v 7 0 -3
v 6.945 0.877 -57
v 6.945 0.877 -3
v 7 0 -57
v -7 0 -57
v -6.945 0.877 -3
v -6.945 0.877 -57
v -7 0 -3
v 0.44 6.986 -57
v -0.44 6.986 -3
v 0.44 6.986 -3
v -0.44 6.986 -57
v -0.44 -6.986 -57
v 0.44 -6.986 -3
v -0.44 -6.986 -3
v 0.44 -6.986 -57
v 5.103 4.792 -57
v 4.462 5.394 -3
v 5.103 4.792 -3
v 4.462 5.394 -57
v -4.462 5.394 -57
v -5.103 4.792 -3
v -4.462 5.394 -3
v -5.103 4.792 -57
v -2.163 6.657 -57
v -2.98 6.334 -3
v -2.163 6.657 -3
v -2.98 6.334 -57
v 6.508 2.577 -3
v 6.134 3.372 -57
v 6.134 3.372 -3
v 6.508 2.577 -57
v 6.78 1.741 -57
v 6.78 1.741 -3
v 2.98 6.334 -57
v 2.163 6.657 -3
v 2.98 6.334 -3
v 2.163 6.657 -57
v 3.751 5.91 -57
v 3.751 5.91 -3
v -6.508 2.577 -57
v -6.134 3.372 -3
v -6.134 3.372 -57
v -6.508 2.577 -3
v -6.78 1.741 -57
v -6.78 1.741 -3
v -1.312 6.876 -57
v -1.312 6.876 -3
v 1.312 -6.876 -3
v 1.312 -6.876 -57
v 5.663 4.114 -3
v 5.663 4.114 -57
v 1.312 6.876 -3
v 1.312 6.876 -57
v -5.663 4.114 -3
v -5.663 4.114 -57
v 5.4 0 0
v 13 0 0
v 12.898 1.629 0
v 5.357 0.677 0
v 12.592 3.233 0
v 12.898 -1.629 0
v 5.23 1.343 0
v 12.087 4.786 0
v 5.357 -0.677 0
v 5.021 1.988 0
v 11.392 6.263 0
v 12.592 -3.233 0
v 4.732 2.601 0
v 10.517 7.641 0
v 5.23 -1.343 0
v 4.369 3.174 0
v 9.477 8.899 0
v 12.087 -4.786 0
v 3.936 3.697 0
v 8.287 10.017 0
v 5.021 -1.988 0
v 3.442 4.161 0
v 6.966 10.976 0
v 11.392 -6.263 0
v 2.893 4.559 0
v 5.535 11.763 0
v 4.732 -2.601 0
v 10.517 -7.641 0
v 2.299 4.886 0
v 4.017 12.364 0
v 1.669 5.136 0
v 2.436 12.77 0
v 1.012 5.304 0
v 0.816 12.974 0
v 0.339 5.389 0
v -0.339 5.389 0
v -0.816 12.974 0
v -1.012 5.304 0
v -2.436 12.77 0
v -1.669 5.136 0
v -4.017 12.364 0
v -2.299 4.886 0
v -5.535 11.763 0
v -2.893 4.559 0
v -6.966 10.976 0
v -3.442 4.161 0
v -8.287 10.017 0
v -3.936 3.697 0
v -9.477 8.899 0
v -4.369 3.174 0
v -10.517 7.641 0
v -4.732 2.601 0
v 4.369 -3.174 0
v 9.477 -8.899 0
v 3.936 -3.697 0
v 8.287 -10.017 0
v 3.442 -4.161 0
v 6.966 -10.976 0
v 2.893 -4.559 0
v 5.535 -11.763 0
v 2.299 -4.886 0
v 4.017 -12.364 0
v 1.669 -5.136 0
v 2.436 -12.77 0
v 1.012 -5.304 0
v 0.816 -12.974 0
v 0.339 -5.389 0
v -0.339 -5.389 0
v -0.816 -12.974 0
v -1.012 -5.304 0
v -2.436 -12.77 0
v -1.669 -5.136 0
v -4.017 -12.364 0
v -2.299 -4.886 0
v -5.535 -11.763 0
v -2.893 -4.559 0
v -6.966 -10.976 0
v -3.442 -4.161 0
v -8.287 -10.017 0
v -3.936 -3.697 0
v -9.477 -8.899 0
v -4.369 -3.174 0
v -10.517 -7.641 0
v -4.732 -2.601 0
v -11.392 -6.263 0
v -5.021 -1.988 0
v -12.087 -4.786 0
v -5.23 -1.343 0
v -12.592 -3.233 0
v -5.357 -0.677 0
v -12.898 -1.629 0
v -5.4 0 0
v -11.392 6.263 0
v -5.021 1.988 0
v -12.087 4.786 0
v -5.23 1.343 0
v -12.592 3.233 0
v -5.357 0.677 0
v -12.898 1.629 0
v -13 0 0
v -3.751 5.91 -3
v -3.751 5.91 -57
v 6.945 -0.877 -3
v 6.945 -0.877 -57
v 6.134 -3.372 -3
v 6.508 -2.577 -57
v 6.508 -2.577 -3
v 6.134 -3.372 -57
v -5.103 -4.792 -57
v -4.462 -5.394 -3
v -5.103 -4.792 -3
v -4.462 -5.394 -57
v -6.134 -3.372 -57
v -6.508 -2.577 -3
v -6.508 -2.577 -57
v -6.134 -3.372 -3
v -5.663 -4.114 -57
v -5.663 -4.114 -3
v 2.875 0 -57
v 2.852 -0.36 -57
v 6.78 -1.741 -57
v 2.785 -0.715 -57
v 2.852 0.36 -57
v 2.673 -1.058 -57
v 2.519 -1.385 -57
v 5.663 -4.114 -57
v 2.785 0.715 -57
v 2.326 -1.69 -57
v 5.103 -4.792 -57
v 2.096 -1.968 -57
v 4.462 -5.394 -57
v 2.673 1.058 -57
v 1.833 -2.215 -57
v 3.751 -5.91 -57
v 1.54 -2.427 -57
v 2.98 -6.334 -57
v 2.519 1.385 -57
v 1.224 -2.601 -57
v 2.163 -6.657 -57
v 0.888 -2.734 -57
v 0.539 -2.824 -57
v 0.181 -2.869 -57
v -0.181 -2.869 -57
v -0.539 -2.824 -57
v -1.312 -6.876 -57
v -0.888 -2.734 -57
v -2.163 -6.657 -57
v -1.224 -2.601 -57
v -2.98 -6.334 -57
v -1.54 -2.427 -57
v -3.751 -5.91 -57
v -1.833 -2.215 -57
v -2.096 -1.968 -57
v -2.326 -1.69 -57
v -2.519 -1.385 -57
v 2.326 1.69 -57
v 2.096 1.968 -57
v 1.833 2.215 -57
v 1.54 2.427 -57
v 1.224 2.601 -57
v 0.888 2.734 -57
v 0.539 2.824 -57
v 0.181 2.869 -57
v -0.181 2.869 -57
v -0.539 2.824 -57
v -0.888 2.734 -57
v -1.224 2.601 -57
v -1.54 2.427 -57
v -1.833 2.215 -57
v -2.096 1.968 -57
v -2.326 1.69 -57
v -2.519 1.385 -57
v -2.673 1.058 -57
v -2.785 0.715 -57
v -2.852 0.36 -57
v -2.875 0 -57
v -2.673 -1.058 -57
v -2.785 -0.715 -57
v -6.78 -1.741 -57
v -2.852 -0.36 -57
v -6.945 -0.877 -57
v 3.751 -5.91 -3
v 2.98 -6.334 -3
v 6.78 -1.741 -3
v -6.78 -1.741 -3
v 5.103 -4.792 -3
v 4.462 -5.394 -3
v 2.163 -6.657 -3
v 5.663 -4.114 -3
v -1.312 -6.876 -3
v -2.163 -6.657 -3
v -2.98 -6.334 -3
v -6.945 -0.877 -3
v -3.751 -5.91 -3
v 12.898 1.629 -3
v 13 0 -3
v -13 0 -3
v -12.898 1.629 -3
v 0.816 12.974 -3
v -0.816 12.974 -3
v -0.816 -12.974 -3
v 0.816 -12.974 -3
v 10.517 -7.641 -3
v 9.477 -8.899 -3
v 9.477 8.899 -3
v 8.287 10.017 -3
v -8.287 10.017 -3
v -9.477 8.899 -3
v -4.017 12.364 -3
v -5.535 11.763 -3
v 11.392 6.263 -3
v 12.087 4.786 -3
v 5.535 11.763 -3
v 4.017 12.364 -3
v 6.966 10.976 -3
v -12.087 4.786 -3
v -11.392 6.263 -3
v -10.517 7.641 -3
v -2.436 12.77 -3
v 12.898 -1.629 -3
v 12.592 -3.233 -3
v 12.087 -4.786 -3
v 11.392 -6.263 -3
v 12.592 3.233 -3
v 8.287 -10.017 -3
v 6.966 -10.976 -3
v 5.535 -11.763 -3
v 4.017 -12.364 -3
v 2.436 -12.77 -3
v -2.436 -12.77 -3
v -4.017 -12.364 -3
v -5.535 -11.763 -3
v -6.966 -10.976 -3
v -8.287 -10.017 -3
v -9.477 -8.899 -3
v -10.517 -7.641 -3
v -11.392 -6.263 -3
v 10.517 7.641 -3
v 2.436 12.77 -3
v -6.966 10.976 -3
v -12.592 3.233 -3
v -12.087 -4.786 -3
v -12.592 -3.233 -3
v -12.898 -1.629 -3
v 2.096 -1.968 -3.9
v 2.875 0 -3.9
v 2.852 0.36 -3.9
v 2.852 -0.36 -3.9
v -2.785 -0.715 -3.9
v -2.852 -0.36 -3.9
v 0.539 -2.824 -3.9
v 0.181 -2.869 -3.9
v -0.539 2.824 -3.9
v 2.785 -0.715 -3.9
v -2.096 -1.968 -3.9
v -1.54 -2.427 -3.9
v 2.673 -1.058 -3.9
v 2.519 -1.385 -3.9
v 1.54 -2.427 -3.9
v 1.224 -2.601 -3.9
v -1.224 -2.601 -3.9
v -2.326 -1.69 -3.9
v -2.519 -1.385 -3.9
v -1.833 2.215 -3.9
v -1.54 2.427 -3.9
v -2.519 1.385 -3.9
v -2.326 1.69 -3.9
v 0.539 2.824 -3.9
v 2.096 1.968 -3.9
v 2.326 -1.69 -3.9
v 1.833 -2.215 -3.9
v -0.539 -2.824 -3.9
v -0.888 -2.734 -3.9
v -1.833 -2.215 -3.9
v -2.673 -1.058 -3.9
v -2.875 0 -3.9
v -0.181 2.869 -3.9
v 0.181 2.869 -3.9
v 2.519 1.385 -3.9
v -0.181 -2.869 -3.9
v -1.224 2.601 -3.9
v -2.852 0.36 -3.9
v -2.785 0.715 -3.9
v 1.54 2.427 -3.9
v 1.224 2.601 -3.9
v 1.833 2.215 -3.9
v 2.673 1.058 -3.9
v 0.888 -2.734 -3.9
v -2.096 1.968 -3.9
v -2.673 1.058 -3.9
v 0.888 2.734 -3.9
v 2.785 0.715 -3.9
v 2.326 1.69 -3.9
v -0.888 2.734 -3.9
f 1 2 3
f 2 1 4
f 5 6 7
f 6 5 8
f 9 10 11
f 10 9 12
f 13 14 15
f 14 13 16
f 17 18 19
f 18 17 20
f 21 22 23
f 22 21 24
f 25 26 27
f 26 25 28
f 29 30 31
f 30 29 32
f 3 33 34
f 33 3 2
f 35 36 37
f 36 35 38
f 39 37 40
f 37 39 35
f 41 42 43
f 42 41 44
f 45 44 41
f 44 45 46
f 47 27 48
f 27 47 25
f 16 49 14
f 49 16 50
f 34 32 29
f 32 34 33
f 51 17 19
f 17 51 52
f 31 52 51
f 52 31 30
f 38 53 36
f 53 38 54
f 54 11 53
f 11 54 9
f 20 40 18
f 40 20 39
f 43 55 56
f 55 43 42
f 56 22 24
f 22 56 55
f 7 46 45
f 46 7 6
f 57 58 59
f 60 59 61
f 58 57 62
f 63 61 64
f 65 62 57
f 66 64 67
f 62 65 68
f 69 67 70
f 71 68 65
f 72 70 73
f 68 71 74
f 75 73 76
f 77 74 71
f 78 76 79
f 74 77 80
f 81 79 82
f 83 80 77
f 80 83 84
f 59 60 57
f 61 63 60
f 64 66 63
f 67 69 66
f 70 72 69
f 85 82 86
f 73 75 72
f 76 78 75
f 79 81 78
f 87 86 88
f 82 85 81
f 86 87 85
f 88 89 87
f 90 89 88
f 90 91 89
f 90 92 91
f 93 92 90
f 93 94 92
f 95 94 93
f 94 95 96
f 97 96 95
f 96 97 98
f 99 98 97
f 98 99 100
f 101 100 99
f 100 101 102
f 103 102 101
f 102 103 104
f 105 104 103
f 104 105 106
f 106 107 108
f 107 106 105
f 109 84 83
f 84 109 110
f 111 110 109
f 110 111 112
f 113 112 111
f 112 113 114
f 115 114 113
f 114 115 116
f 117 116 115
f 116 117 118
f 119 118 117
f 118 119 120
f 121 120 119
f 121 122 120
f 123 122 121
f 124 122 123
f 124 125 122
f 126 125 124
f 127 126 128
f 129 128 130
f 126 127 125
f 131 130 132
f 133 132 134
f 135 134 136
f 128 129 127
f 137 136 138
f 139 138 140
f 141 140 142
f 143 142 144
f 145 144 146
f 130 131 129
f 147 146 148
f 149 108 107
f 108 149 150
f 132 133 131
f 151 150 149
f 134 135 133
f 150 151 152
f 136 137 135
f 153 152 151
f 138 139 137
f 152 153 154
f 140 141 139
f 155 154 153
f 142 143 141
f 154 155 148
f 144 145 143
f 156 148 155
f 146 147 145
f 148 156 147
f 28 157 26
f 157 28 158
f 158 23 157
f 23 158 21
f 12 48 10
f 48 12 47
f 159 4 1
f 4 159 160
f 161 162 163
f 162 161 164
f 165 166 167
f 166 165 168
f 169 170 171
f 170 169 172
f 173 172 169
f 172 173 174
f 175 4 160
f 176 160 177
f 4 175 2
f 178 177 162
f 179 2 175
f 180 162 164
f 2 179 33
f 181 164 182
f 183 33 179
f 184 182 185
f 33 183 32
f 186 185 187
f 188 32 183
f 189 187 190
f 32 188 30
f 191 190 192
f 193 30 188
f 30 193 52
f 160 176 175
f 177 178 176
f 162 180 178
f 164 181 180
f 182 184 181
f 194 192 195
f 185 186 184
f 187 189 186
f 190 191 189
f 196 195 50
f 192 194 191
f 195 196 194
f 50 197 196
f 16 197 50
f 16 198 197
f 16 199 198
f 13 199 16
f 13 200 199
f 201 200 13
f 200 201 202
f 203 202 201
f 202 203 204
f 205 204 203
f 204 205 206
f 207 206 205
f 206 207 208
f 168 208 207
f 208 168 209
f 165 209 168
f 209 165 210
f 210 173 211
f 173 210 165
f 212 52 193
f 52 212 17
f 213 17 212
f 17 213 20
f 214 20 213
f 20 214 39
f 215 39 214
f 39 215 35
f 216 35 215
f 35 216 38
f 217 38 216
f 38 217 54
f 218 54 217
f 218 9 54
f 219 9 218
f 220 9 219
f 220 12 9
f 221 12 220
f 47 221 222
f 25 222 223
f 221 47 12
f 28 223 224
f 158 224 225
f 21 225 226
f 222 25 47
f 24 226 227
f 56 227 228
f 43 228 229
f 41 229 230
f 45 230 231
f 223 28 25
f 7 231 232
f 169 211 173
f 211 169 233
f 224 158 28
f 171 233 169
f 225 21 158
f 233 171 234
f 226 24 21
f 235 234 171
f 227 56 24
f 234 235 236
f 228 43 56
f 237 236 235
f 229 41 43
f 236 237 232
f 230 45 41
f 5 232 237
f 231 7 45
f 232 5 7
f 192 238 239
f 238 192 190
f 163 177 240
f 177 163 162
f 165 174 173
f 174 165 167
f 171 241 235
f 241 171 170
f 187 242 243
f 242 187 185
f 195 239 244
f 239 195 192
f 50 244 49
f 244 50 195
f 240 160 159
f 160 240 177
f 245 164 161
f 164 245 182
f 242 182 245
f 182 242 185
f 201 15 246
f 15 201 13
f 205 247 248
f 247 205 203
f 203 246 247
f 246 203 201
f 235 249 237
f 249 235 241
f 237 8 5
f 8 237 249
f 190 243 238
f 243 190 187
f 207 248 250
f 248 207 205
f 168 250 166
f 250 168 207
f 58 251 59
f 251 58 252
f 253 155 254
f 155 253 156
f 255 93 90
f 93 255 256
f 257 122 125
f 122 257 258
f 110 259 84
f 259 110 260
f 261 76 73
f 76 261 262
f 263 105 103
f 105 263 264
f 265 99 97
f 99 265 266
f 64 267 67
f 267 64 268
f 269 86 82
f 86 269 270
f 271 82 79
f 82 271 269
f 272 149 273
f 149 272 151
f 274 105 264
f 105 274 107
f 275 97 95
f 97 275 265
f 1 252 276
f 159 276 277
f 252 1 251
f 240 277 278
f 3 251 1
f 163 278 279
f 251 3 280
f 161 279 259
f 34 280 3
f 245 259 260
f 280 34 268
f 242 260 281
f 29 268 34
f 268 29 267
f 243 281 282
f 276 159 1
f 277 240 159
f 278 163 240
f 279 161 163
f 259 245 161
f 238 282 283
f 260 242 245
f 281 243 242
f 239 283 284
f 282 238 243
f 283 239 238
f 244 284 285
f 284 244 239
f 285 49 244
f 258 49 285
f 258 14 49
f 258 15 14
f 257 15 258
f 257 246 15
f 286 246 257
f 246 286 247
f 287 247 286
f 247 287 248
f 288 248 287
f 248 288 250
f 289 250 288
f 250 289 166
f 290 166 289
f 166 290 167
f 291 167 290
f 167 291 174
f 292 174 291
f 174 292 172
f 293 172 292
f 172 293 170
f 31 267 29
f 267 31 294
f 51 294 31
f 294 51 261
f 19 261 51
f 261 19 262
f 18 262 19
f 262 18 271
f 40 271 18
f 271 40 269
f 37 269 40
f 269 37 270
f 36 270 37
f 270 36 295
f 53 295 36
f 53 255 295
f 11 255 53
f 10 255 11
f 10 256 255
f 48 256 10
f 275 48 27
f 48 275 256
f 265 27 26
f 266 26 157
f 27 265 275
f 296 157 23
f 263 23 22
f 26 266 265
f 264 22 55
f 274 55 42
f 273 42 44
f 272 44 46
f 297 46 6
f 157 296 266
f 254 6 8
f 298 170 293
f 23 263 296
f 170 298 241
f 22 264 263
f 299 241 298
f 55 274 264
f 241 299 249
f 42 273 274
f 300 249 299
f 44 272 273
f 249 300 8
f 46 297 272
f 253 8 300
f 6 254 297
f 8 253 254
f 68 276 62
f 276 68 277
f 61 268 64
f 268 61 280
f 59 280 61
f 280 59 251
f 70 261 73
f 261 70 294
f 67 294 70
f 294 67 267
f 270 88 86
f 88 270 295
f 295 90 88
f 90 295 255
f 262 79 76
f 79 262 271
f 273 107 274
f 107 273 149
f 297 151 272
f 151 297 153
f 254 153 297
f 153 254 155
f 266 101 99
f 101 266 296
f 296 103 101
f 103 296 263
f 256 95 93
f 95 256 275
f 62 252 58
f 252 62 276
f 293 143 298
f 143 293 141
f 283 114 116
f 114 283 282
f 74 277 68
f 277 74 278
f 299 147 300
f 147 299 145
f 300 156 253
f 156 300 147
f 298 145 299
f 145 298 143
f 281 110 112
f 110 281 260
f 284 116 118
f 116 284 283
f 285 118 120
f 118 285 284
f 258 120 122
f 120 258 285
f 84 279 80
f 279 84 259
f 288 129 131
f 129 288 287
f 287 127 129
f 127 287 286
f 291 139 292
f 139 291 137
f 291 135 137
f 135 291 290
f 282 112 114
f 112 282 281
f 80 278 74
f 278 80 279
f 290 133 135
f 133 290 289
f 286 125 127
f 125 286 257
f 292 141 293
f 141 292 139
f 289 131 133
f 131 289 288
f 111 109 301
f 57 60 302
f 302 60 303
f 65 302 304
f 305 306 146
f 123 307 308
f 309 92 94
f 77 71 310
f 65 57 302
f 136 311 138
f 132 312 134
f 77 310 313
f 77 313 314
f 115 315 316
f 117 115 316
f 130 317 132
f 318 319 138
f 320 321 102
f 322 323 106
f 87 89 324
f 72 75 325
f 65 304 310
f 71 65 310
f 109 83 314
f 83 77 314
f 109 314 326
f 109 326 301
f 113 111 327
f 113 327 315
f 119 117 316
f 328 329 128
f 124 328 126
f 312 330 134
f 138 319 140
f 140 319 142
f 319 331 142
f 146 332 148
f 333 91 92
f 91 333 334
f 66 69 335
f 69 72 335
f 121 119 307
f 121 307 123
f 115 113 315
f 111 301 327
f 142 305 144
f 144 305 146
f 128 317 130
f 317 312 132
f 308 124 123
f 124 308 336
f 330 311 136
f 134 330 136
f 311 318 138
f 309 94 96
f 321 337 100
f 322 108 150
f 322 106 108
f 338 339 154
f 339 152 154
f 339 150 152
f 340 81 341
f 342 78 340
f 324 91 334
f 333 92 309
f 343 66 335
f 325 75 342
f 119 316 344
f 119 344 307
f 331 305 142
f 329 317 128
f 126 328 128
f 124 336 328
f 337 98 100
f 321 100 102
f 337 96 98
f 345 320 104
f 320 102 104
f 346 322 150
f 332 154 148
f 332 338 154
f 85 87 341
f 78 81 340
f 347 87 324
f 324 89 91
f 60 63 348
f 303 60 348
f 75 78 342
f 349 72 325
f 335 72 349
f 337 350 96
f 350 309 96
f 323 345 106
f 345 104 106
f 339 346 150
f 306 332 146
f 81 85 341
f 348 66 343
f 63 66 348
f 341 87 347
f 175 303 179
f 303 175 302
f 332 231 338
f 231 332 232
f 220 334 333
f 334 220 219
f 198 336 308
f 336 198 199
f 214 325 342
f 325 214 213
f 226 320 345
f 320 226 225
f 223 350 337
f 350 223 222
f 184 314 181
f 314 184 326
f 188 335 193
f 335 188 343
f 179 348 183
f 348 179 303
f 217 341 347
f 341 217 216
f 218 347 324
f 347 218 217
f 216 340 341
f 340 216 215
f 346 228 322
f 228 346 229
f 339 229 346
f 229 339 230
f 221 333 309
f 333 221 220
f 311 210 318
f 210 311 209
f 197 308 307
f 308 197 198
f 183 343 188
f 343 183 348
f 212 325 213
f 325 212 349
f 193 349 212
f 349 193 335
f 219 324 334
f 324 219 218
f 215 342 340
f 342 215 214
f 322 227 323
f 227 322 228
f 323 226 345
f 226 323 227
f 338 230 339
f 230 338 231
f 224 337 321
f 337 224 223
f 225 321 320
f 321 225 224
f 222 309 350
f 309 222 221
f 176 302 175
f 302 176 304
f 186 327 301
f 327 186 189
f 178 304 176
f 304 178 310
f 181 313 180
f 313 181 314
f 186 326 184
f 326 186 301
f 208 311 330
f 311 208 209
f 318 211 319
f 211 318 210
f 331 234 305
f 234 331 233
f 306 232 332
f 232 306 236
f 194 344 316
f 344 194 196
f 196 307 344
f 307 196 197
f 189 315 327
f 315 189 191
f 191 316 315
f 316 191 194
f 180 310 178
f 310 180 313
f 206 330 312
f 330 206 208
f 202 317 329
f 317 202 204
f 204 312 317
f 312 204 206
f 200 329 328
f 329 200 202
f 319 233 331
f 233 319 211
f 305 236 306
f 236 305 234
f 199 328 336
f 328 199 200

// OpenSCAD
$fn = 50;


difference() {
	union() {
		translate(v = [0, 0, -57.0000000000]) {
			cylinder(h = 57, r = 7.0000000000);
		}
		translate(v = [0, 0, -3.0000000000]) {
			cylinder(h = 3, r = 13.0000000000);
		}
	}
	union() {
		translate(v = [0, 0, 0]) {
			rotate(a = [0, 0, 0]) {
				difference() {
					union() {
						#translate(v = [0, 0, -57.0000000000]) {
							cylinder(h = 57, r = 2.6000000000);
						}
						#translate(v = [0, 0, -3.9000000000]) {
							cylinder(h = 3.9000000000, r1 = 2.8750000000, r2 = 5.4000000000);
						}
						#translate(v = [0, 0, -57.0000000000]) {
							cylinder(h = 57, r = 2.8750000000);
						}
						#translate(v = [0, 0, -57.0000000000]) {
							cylinder(h = 57, r = 2.6000000000);
						}
					}
					union();
				}
			}
		}
	}
}
